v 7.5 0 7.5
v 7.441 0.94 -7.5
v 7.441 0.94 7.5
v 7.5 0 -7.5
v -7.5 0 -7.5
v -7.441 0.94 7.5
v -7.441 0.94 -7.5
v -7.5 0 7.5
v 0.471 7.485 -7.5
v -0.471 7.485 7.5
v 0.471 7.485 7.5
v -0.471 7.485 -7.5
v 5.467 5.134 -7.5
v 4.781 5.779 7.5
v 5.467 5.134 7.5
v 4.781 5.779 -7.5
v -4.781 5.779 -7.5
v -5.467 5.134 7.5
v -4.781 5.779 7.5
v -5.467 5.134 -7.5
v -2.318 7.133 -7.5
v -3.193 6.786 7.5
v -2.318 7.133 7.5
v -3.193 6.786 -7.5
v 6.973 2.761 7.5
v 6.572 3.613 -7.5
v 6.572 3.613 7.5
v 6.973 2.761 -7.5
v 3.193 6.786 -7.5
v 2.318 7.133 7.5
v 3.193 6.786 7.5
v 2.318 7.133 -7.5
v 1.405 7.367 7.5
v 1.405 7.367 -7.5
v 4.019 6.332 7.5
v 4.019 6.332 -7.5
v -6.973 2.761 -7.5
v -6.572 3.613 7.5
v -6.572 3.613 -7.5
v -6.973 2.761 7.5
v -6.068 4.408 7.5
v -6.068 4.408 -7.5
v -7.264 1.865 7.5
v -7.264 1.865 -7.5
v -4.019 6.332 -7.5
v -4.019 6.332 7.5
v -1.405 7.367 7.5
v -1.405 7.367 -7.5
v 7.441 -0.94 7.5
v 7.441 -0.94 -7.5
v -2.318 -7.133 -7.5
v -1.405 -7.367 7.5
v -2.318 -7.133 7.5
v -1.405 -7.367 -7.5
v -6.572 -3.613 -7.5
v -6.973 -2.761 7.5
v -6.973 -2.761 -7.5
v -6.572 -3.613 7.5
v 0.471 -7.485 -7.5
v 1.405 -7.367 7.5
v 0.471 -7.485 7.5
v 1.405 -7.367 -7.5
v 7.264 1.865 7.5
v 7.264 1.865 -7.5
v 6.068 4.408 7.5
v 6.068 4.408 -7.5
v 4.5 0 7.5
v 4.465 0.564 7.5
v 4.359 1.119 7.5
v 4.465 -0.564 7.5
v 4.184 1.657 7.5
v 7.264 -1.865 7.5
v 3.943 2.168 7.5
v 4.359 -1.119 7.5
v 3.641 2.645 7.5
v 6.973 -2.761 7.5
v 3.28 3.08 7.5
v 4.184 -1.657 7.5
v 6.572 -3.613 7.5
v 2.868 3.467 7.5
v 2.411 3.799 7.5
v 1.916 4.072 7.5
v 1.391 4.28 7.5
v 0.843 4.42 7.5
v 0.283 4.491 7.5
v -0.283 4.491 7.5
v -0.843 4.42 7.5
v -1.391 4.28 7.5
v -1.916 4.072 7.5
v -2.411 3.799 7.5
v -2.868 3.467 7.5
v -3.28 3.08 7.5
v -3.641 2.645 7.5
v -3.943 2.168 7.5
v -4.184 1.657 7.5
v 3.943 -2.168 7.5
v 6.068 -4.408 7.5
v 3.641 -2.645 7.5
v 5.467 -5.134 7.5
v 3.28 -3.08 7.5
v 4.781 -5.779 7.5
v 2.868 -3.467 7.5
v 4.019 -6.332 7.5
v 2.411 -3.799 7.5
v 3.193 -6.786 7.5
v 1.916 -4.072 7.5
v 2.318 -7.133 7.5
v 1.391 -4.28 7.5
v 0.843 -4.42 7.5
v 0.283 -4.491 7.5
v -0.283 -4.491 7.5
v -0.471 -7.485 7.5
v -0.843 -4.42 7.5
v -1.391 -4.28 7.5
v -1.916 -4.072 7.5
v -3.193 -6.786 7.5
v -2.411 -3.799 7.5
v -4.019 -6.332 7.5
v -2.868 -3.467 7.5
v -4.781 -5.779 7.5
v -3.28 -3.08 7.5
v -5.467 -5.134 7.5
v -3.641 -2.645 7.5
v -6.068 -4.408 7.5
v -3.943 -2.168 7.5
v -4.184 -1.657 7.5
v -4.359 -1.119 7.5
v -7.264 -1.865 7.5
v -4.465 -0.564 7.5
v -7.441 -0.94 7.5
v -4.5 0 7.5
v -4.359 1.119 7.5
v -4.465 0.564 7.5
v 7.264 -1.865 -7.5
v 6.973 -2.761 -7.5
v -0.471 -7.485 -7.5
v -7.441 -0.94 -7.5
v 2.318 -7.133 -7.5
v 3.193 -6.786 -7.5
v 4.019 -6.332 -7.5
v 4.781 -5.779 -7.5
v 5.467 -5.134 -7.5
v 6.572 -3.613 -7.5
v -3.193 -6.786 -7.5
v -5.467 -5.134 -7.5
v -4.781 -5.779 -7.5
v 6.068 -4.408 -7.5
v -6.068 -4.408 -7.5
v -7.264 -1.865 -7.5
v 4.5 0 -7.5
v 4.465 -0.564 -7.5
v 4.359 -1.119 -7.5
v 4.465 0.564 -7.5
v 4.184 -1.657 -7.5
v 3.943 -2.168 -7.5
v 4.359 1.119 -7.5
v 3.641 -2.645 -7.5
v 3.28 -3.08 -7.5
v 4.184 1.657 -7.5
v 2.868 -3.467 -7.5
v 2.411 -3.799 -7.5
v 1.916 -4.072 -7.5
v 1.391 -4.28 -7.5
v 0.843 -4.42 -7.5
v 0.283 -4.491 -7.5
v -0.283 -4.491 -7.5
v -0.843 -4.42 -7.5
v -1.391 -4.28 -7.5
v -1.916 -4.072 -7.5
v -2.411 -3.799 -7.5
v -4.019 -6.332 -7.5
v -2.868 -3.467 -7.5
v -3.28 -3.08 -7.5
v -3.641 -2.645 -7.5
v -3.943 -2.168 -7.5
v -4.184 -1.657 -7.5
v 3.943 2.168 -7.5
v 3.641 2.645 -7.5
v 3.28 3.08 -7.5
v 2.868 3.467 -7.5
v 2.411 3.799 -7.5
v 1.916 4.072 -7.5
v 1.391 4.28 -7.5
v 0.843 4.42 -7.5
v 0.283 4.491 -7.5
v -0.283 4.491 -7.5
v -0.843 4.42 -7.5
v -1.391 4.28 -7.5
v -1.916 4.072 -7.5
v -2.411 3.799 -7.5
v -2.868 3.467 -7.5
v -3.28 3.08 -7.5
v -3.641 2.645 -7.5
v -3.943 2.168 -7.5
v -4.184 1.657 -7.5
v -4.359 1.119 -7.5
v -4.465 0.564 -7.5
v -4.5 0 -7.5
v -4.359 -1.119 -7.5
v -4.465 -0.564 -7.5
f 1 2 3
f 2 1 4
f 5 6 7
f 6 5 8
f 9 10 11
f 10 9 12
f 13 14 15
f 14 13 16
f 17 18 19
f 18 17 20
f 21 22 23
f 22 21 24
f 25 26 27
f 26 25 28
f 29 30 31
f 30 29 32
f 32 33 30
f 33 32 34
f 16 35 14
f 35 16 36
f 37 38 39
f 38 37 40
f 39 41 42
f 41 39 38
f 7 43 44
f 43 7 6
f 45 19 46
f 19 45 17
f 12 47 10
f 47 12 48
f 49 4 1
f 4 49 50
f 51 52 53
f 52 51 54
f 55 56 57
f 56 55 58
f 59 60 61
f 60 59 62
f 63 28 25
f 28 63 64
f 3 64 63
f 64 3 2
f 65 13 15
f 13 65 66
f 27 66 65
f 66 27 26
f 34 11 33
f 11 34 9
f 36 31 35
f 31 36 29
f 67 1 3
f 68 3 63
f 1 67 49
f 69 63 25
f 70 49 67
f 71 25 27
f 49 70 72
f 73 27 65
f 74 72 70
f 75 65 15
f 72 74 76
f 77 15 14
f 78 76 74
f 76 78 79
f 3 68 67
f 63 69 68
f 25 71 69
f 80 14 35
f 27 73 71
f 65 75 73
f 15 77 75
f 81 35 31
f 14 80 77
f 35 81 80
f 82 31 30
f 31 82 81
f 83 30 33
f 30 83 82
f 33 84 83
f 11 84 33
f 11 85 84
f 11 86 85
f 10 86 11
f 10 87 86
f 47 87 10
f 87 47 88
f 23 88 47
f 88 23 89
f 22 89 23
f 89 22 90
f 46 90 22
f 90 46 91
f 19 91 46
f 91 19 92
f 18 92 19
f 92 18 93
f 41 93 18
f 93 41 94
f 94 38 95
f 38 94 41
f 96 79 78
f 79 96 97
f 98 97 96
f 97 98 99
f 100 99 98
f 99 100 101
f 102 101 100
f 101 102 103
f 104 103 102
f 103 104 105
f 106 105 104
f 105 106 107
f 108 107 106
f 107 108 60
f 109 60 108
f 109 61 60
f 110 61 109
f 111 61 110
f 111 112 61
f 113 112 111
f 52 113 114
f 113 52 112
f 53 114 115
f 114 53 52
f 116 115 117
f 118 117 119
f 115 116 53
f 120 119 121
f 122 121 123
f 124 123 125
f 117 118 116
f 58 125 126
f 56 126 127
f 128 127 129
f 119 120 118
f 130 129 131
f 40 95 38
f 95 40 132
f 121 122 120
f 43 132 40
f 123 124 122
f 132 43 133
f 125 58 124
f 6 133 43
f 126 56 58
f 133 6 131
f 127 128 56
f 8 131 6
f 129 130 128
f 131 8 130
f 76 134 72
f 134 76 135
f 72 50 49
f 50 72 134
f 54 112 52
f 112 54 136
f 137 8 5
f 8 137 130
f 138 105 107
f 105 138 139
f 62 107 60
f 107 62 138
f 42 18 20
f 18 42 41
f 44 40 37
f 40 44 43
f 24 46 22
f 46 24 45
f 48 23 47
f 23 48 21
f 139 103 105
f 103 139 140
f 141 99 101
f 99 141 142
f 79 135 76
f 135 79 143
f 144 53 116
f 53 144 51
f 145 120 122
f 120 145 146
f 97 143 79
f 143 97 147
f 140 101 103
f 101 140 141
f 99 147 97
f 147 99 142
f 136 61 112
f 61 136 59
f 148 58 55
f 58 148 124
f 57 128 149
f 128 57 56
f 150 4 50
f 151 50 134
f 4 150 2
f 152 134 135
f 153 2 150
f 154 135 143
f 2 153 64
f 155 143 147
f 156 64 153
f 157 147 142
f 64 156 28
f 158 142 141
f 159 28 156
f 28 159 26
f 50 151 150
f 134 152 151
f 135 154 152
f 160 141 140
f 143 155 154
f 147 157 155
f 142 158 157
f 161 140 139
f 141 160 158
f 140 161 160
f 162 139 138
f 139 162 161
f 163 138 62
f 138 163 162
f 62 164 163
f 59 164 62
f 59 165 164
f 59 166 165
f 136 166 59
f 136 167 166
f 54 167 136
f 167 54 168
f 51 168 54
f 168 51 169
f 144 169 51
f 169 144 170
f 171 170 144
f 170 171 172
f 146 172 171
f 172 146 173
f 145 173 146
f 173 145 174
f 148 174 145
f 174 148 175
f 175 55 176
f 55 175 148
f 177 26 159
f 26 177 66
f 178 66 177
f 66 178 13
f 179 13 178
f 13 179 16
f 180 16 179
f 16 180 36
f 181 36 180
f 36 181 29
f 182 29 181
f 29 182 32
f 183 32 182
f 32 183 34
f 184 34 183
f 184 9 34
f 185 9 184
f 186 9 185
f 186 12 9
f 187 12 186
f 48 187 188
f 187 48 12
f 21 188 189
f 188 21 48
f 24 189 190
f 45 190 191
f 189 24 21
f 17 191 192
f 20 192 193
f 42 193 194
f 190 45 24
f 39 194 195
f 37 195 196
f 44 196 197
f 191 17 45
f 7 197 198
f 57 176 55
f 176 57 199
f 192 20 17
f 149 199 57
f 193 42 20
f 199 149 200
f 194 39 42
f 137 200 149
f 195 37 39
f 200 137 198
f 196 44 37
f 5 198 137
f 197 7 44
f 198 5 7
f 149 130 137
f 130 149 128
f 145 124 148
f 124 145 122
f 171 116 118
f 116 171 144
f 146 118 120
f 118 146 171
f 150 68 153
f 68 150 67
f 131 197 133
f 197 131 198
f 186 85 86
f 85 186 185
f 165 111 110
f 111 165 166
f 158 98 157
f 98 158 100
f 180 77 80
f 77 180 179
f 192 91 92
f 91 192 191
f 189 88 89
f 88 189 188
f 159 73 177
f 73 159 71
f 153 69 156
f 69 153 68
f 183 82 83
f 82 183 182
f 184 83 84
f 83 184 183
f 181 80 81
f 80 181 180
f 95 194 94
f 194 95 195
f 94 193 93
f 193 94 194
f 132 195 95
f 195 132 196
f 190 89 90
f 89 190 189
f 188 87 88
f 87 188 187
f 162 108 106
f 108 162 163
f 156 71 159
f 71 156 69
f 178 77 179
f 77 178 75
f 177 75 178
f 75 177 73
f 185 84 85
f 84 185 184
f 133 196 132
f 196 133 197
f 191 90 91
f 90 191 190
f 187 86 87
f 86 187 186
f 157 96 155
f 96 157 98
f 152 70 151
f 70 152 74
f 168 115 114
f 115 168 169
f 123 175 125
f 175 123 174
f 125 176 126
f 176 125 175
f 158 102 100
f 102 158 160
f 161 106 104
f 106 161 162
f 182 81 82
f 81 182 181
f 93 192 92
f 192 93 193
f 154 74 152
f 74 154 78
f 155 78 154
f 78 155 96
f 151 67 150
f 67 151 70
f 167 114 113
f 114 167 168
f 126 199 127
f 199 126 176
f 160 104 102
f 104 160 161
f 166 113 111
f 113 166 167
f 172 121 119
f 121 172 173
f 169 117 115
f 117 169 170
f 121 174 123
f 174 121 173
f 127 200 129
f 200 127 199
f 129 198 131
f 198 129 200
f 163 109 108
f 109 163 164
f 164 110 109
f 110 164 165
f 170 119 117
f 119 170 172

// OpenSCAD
$fn = 50;


difference() {
	union() {
		translate(v = [0, 0, -7.5000000000]) {
			cylinder(h = 15, r = 7.5000000000);
		}
	}
	union() {
		translate(v = [0, 0, -100.0000000000]) {
			cylinder(h = 200, r = 4.5000000000);
		}
	}
}
